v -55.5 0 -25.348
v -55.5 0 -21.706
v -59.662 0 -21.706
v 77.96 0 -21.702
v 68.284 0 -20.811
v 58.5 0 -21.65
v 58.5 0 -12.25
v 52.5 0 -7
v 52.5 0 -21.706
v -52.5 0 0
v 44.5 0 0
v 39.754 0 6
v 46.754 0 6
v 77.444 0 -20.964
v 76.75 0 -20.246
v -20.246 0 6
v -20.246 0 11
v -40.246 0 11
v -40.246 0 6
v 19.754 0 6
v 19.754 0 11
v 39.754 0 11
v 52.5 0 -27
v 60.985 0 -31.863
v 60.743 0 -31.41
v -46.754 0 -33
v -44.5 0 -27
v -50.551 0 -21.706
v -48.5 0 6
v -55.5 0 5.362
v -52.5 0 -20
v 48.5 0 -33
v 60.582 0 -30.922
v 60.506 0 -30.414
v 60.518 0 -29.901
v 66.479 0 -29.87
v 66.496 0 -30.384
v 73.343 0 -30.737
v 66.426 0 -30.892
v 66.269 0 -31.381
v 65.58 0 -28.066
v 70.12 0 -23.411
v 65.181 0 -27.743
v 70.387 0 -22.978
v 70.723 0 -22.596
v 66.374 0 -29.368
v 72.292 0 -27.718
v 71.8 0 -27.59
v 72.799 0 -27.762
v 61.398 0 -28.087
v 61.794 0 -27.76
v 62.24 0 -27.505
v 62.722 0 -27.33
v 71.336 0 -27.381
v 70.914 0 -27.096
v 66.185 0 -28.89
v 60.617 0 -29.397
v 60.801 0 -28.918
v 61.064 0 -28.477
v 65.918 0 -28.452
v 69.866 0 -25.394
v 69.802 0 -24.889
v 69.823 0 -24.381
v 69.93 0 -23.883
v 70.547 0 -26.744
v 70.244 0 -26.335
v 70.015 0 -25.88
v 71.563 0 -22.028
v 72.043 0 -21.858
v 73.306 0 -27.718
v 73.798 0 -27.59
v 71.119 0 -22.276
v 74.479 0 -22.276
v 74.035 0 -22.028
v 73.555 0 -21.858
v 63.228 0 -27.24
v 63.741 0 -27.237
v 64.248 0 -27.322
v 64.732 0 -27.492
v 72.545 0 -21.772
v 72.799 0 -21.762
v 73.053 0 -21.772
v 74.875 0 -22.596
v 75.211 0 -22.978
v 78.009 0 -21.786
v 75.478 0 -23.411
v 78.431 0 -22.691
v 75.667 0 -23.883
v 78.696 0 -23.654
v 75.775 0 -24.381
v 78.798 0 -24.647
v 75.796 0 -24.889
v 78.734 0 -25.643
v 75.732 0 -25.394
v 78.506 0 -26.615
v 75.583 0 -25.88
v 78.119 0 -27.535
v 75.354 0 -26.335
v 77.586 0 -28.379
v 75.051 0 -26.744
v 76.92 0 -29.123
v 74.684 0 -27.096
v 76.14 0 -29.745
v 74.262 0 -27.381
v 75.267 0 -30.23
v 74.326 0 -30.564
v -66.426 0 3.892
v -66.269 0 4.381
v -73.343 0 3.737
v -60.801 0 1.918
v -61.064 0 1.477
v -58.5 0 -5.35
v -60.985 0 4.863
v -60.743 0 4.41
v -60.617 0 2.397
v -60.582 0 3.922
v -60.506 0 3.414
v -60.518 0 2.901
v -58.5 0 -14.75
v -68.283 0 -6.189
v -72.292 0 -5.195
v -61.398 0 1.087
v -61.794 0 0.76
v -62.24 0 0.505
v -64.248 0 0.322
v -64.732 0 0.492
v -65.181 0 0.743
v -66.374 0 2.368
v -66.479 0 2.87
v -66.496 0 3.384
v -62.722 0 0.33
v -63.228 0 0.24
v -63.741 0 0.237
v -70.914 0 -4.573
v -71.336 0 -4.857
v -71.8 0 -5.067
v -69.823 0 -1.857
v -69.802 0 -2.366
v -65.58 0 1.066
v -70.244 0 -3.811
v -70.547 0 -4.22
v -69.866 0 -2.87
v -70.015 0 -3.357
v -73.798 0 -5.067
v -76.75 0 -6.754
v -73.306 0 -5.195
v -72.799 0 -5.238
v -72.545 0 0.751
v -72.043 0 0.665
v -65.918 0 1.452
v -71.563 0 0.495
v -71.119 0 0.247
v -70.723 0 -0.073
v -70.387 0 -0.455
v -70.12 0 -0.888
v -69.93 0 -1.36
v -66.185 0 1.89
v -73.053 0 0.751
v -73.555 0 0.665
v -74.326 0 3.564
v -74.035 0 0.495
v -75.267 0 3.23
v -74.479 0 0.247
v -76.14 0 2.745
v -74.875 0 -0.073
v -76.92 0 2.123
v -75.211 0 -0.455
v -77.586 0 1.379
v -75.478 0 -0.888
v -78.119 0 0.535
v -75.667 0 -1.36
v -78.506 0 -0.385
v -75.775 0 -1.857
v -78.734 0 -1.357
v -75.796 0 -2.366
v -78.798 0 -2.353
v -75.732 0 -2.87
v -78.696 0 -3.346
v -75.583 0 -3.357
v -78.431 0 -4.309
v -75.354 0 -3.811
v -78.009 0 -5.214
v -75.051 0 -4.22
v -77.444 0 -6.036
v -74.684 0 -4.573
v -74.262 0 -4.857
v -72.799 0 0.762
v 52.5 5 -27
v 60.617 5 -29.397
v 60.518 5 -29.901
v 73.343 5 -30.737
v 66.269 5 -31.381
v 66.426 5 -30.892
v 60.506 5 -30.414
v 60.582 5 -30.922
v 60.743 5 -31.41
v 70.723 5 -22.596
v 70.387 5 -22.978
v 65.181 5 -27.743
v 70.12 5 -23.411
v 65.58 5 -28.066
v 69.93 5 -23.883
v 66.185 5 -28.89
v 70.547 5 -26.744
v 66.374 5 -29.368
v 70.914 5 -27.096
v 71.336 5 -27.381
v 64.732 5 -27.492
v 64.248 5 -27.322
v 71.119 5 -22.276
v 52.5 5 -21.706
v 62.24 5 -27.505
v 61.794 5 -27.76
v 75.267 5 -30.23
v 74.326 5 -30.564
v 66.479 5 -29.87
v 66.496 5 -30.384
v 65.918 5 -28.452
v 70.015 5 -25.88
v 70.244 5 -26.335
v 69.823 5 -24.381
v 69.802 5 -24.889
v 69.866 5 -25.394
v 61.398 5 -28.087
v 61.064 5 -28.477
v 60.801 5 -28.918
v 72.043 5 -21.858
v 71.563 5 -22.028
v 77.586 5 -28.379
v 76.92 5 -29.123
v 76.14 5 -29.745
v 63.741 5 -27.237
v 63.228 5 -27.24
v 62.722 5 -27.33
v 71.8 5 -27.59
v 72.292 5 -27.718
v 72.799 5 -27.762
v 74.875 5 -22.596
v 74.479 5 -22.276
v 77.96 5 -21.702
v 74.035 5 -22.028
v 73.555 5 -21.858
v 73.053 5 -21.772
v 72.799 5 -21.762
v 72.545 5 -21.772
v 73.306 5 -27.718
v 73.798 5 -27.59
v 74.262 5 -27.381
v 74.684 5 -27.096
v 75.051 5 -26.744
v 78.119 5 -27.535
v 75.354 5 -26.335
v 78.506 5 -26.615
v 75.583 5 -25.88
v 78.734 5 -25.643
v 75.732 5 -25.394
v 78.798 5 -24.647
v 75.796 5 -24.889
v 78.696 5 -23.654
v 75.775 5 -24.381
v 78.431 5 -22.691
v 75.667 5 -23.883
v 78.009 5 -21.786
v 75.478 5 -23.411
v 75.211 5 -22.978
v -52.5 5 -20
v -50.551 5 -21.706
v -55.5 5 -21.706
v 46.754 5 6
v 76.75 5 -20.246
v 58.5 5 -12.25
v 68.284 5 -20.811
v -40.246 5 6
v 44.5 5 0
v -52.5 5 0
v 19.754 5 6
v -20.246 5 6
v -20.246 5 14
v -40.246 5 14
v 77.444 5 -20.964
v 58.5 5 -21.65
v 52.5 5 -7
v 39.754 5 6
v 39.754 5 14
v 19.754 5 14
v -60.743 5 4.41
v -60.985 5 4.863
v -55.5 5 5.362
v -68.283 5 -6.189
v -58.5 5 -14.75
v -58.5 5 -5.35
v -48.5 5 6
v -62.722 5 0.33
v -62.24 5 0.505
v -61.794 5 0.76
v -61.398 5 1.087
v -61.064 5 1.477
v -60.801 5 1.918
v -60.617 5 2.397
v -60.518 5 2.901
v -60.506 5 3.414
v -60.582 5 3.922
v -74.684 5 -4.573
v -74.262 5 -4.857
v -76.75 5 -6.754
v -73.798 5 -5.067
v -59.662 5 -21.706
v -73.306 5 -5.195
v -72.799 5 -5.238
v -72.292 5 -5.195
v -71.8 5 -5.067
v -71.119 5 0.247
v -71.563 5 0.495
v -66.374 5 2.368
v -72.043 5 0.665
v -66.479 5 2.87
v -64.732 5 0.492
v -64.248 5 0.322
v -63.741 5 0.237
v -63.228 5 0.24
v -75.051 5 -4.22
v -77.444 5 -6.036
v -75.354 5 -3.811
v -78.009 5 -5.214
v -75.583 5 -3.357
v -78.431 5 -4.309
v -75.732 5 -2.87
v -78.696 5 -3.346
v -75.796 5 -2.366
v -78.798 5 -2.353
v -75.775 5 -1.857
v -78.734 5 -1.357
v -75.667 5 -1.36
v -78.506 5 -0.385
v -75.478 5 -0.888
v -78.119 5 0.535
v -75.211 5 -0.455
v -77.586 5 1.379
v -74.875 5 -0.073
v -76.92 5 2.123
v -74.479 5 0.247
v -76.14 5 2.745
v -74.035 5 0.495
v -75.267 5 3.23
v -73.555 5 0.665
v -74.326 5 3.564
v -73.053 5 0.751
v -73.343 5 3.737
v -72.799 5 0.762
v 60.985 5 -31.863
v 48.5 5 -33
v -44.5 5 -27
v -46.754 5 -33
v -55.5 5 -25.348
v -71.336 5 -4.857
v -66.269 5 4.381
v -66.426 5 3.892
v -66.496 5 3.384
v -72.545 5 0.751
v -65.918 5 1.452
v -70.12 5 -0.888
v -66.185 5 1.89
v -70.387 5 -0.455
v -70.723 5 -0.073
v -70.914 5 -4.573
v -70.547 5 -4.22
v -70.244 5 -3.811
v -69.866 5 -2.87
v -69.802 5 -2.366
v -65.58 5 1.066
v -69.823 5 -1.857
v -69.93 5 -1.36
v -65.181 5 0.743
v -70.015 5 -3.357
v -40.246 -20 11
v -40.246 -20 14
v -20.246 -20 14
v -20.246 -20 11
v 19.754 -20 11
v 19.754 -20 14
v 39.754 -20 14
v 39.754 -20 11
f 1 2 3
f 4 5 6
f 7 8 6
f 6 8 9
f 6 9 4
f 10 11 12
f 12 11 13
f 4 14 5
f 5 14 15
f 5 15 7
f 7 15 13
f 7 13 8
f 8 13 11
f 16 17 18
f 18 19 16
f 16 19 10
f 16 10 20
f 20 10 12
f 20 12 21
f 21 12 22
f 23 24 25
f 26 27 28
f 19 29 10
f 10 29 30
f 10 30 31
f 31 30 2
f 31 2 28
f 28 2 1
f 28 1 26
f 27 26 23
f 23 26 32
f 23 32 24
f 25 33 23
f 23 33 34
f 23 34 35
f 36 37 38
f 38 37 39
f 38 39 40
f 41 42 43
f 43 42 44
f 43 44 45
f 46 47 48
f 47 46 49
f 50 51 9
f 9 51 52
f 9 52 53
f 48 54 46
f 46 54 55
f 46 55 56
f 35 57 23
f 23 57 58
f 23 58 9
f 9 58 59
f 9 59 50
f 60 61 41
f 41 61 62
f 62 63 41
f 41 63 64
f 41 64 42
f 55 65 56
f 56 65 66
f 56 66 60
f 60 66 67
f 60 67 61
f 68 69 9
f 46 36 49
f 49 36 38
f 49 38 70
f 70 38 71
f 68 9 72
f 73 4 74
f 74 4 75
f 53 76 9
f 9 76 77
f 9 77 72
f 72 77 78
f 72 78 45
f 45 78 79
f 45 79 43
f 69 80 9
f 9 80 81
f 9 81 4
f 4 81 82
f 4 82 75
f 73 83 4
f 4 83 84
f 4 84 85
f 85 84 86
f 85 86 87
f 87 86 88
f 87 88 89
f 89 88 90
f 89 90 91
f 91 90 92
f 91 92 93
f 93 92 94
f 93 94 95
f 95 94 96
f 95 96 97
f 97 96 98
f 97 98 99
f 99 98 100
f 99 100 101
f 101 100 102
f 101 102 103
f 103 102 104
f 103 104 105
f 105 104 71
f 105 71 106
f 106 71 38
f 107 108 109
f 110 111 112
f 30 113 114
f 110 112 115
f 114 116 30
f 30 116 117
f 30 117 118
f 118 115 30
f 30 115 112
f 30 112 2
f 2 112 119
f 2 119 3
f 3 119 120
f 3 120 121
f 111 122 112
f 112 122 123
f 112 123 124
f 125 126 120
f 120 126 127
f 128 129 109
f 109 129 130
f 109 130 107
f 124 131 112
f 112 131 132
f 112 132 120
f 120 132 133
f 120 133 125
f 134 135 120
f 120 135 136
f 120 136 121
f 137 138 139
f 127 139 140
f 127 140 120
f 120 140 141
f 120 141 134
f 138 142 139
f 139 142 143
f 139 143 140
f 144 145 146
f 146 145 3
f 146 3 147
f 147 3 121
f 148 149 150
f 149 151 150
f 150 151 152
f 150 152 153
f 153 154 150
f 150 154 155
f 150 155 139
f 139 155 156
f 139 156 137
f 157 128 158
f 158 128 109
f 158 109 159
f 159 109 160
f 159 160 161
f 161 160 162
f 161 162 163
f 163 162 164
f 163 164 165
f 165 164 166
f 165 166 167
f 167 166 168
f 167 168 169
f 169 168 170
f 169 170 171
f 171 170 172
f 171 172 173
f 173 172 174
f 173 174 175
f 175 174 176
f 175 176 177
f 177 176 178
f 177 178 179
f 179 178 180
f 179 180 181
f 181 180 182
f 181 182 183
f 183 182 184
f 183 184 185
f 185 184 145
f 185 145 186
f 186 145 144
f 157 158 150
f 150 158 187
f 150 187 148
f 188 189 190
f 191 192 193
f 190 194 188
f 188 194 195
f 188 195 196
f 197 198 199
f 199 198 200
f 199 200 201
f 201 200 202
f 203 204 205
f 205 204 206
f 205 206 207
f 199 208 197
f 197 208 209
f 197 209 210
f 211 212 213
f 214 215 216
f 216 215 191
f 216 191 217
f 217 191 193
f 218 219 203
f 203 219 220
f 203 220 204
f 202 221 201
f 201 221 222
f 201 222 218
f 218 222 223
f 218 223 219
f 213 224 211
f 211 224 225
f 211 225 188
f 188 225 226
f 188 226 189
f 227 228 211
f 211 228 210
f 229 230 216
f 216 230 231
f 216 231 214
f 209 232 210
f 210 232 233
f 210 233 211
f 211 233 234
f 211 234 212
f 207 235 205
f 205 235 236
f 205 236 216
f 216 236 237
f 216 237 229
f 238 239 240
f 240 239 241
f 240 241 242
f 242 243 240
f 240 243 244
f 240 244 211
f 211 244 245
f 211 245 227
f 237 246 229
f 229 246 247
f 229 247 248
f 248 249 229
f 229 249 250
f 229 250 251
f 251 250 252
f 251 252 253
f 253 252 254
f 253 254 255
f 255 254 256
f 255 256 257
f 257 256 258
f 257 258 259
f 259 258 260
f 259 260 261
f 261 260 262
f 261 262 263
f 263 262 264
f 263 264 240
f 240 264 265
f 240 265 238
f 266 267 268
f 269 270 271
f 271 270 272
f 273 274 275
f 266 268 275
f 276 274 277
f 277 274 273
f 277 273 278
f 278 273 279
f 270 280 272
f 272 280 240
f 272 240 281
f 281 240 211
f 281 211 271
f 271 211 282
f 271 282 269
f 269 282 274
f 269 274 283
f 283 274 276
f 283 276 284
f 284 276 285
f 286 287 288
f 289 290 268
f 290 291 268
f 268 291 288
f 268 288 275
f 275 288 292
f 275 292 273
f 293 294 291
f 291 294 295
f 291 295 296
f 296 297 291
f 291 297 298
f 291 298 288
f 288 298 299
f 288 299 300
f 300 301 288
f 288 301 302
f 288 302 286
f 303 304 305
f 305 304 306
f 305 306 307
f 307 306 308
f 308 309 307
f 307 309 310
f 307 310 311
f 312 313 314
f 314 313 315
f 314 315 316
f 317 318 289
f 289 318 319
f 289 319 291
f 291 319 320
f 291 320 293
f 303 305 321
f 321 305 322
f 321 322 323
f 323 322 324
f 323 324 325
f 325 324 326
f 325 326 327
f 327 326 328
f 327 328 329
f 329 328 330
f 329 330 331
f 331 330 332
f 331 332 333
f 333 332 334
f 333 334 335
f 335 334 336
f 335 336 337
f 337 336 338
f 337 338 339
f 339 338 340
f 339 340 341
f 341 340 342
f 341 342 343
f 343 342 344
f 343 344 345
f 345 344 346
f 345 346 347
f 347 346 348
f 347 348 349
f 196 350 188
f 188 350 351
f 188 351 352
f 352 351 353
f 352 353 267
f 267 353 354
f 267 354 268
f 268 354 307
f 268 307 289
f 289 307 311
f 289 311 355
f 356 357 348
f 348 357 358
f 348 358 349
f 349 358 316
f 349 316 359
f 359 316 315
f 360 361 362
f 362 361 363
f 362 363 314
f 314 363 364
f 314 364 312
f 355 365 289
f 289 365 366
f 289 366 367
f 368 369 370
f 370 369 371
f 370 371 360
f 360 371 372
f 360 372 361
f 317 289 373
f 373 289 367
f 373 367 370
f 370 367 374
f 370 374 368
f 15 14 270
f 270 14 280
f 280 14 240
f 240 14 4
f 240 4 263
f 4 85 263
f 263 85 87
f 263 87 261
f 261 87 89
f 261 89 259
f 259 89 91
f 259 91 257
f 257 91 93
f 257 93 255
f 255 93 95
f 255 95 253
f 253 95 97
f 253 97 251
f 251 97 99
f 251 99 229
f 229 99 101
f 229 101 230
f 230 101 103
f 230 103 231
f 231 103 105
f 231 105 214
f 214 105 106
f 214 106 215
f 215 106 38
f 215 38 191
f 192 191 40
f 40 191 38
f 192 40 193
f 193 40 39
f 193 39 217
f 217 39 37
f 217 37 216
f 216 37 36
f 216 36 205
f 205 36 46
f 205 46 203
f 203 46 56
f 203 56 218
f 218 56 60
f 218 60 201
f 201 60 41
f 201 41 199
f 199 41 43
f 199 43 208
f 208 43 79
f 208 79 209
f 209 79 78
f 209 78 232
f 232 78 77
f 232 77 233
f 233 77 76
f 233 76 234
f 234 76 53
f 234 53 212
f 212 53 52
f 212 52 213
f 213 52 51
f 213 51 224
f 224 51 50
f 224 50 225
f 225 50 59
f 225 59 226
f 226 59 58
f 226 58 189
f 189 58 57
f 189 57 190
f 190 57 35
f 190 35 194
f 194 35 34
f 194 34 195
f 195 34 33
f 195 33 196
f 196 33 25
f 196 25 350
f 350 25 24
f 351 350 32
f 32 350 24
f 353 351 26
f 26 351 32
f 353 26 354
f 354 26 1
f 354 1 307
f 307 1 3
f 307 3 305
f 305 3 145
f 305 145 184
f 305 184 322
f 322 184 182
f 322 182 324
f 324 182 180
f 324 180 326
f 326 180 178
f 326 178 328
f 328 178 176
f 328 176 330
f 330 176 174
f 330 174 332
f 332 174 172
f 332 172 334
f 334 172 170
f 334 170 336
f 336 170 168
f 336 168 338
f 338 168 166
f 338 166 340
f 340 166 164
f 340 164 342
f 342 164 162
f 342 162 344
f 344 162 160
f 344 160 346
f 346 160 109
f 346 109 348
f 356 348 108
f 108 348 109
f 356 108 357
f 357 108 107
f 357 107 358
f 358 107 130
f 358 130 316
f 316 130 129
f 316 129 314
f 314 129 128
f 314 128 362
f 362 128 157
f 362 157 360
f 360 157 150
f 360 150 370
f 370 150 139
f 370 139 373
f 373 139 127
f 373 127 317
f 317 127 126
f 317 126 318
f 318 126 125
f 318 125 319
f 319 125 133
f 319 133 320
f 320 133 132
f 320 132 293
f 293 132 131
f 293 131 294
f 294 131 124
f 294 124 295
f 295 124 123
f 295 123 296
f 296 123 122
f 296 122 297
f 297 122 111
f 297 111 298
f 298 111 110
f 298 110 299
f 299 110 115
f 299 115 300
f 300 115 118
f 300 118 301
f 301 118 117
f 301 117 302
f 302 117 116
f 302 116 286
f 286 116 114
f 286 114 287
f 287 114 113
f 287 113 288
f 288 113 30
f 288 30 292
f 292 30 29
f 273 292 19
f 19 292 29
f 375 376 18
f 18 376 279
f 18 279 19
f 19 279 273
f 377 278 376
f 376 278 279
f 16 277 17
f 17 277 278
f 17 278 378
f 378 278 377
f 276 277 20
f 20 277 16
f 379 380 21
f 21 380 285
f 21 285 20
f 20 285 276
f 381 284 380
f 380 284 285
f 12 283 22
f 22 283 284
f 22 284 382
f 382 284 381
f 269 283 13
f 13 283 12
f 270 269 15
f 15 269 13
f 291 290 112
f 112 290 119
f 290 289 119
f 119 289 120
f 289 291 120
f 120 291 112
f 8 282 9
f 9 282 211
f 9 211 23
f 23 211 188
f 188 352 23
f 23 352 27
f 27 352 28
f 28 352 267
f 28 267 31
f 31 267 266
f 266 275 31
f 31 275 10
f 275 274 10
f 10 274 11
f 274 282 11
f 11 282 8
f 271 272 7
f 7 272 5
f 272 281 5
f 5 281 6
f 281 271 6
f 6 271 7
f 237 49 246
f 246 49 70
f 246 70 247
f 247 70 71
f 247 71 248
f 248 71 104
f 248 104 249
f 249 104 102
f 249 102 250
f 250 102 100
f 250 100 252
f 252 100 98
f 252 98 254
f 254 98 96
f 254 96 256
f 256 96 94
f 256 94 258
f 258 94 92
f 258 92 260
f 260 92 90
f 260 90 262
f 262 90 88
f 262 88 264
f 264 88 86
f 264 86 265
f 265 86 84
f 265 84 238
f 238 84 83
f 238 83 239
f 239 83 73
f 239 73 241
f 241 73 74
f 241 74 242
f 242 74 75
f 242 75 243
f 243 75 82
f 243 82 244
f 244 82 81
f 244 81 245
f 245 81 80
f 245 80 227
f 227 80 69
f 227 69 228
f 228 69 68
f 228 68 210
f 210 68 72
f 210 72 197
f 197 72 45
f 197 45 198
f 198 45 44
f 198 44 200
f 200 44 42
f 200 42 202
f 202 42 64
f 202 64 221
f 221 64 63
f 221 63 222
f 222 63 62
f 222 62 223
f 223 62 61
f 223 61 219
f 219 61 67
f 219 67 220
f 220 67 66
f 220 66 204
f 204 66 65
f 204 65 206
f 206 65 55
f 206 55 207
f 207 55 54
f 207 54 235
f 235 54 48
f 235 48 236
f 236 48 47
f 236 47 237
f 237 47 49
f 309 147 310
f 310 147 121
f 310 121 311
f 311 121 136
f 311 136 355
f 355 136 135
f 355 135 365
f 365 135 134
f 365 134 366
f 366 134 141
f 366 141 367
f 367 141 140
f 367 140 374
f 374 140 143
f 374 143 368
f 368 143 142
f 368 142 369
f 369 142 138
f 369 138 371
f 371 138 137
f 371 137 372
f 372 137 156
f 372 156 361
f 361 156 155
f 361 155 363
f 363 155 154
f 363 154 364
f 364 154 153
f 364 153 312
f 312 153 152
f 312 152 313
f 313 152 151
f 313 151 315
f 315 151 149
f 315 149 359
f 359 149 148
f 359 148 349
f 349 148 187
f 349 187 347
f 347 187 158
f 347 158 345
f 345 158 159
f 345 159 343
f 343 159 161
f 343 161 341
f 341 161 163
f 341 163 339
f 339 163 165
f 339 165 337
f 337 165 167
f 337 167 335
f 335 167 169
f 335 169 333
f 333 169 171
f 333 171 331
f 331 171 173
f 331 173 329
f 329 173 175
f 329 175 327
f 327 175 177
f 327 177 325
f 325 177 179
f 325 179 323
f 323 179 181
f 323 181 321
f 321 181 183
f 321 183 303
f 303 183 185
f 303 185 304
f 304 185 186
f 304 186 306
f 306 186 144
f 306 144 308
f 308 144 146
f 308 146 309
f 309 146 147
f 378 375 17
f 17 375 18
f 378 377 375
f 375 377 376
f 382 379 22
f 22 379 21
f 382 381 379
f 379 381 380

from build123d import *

# Parameters (mm, degrees)
SKETCH1_R           = 3
BOSS_EXTRUDE1_DEPTH = 5
SKETCH2_W           = 20
SKETCH2_H           = 3
BOSS_EXTRUDE2_DEPTH = 20


with BuildPart() as part:
    # Sketch1 → Boss-Extrude1 (new body)
    with BuildSketch(Plane(origin=(0, 0, 0), x_dir=(1, 0, 0), z_dir=(0, 1, 0))):
        with BuildLine():
            Line((-46.754410697, 33), (48.5, 33))
            Line((48.5, 33), (60.984651798, 31.862682764))
            ThreePointArc((60.984651798, 31.862682764), (63.227835275, 27.240115524), (66.269368613, 31.381259683))
            Line((66.269368613, 31.381259683), (73.34328665, 30.736845322))
            ThreePointArc((73.34328665, 30.736845322), (78.505606793, 26.614733634), (76.749984847, 20.246127381))
            Line((76.749984847, 20.246127381), (46.754410697, -6))
            Line((46.754410697, -6), (39.754410697, -6))
            Line((39.754410697, -6), (39.754410697, -14))
            Line((39.754410697, -14), (19.754410697, -14))
            Line((19.754410697, -14), (19.754410697, -6))
            Line((19.754410697, -6), (-20.245589303, -6))
            Line((-20.245589303, -6), (-20.245589303, -14))
            Line((-20.245589303, -14), (-40.245589303, -14))
            Line((-40.245589303, -14), (-40.245589303, -6))
            Line((-40.245589303, -6), (-48.5, -6))
            Line((-48.5, -6), (-60.984651798, -4.862682764))
            ThreePointArc((-60.984651798, -4.862682764), (-63.227835275, -0.240115524), (-66.269368613, -4.381259683))
            Line((-66.269368613, -4.381259683), (-73.34328665, -3.736845322))
            ThreePointArc((-73.34328665, -3.736845322), (-78.505606793, 0.385266366), (-76.749984847, 6.753872619))
            Line((-76.749984847, 6.753872619), (-46.754410697, 33))
        make_face()
        with Locations(Location((72.798957199, 24.76158755, 0), (0, 0, 270))):
            Circle(SKETCH1_R, mode=Mode.SUBTRACT)
        with Locations(Location((-72.798957199, 2.23841245, 0), (0, 0, 270))):
            Circle(SKETCH1_R, mode=Mode.SUBTRACT)
        Polygon((-44.5, 27), (52.5, 27), (52.5, 7), (44.5, 0), (-52.5, 0), (-52.5, 20), align=None, mode=Mode.SUBTRACT)
        Polygon((58.5, 21.65), (58.5, 12.25), (68.283497031, 20.810559902), align=None, mode=Mode.SUBTRACT)
        Polygon((-58.5, 14.75), (-68.283497031, 6.189440098), (-58.5, 5.35), align=None, mode=Mode.SUBTRACT)
    extrude(amount=BOSS_EXTRUDE1_DEPTH)

    # Sketch2 → Boss-Extrude2 (add)
    with BuildSketch(Plane.XZ):
        with Locations((-30.245589303, 12.5)):
            Rectangle(SKETCH2_W, SKETCH2_H)
        with Locations((29.754410697, 12.5)):
            Rectangle(SKETCH2_W, SKETCH2_H)
    extrude(amount=BOSS_EXTRUDE2_DEPTH)


solid = part.part
